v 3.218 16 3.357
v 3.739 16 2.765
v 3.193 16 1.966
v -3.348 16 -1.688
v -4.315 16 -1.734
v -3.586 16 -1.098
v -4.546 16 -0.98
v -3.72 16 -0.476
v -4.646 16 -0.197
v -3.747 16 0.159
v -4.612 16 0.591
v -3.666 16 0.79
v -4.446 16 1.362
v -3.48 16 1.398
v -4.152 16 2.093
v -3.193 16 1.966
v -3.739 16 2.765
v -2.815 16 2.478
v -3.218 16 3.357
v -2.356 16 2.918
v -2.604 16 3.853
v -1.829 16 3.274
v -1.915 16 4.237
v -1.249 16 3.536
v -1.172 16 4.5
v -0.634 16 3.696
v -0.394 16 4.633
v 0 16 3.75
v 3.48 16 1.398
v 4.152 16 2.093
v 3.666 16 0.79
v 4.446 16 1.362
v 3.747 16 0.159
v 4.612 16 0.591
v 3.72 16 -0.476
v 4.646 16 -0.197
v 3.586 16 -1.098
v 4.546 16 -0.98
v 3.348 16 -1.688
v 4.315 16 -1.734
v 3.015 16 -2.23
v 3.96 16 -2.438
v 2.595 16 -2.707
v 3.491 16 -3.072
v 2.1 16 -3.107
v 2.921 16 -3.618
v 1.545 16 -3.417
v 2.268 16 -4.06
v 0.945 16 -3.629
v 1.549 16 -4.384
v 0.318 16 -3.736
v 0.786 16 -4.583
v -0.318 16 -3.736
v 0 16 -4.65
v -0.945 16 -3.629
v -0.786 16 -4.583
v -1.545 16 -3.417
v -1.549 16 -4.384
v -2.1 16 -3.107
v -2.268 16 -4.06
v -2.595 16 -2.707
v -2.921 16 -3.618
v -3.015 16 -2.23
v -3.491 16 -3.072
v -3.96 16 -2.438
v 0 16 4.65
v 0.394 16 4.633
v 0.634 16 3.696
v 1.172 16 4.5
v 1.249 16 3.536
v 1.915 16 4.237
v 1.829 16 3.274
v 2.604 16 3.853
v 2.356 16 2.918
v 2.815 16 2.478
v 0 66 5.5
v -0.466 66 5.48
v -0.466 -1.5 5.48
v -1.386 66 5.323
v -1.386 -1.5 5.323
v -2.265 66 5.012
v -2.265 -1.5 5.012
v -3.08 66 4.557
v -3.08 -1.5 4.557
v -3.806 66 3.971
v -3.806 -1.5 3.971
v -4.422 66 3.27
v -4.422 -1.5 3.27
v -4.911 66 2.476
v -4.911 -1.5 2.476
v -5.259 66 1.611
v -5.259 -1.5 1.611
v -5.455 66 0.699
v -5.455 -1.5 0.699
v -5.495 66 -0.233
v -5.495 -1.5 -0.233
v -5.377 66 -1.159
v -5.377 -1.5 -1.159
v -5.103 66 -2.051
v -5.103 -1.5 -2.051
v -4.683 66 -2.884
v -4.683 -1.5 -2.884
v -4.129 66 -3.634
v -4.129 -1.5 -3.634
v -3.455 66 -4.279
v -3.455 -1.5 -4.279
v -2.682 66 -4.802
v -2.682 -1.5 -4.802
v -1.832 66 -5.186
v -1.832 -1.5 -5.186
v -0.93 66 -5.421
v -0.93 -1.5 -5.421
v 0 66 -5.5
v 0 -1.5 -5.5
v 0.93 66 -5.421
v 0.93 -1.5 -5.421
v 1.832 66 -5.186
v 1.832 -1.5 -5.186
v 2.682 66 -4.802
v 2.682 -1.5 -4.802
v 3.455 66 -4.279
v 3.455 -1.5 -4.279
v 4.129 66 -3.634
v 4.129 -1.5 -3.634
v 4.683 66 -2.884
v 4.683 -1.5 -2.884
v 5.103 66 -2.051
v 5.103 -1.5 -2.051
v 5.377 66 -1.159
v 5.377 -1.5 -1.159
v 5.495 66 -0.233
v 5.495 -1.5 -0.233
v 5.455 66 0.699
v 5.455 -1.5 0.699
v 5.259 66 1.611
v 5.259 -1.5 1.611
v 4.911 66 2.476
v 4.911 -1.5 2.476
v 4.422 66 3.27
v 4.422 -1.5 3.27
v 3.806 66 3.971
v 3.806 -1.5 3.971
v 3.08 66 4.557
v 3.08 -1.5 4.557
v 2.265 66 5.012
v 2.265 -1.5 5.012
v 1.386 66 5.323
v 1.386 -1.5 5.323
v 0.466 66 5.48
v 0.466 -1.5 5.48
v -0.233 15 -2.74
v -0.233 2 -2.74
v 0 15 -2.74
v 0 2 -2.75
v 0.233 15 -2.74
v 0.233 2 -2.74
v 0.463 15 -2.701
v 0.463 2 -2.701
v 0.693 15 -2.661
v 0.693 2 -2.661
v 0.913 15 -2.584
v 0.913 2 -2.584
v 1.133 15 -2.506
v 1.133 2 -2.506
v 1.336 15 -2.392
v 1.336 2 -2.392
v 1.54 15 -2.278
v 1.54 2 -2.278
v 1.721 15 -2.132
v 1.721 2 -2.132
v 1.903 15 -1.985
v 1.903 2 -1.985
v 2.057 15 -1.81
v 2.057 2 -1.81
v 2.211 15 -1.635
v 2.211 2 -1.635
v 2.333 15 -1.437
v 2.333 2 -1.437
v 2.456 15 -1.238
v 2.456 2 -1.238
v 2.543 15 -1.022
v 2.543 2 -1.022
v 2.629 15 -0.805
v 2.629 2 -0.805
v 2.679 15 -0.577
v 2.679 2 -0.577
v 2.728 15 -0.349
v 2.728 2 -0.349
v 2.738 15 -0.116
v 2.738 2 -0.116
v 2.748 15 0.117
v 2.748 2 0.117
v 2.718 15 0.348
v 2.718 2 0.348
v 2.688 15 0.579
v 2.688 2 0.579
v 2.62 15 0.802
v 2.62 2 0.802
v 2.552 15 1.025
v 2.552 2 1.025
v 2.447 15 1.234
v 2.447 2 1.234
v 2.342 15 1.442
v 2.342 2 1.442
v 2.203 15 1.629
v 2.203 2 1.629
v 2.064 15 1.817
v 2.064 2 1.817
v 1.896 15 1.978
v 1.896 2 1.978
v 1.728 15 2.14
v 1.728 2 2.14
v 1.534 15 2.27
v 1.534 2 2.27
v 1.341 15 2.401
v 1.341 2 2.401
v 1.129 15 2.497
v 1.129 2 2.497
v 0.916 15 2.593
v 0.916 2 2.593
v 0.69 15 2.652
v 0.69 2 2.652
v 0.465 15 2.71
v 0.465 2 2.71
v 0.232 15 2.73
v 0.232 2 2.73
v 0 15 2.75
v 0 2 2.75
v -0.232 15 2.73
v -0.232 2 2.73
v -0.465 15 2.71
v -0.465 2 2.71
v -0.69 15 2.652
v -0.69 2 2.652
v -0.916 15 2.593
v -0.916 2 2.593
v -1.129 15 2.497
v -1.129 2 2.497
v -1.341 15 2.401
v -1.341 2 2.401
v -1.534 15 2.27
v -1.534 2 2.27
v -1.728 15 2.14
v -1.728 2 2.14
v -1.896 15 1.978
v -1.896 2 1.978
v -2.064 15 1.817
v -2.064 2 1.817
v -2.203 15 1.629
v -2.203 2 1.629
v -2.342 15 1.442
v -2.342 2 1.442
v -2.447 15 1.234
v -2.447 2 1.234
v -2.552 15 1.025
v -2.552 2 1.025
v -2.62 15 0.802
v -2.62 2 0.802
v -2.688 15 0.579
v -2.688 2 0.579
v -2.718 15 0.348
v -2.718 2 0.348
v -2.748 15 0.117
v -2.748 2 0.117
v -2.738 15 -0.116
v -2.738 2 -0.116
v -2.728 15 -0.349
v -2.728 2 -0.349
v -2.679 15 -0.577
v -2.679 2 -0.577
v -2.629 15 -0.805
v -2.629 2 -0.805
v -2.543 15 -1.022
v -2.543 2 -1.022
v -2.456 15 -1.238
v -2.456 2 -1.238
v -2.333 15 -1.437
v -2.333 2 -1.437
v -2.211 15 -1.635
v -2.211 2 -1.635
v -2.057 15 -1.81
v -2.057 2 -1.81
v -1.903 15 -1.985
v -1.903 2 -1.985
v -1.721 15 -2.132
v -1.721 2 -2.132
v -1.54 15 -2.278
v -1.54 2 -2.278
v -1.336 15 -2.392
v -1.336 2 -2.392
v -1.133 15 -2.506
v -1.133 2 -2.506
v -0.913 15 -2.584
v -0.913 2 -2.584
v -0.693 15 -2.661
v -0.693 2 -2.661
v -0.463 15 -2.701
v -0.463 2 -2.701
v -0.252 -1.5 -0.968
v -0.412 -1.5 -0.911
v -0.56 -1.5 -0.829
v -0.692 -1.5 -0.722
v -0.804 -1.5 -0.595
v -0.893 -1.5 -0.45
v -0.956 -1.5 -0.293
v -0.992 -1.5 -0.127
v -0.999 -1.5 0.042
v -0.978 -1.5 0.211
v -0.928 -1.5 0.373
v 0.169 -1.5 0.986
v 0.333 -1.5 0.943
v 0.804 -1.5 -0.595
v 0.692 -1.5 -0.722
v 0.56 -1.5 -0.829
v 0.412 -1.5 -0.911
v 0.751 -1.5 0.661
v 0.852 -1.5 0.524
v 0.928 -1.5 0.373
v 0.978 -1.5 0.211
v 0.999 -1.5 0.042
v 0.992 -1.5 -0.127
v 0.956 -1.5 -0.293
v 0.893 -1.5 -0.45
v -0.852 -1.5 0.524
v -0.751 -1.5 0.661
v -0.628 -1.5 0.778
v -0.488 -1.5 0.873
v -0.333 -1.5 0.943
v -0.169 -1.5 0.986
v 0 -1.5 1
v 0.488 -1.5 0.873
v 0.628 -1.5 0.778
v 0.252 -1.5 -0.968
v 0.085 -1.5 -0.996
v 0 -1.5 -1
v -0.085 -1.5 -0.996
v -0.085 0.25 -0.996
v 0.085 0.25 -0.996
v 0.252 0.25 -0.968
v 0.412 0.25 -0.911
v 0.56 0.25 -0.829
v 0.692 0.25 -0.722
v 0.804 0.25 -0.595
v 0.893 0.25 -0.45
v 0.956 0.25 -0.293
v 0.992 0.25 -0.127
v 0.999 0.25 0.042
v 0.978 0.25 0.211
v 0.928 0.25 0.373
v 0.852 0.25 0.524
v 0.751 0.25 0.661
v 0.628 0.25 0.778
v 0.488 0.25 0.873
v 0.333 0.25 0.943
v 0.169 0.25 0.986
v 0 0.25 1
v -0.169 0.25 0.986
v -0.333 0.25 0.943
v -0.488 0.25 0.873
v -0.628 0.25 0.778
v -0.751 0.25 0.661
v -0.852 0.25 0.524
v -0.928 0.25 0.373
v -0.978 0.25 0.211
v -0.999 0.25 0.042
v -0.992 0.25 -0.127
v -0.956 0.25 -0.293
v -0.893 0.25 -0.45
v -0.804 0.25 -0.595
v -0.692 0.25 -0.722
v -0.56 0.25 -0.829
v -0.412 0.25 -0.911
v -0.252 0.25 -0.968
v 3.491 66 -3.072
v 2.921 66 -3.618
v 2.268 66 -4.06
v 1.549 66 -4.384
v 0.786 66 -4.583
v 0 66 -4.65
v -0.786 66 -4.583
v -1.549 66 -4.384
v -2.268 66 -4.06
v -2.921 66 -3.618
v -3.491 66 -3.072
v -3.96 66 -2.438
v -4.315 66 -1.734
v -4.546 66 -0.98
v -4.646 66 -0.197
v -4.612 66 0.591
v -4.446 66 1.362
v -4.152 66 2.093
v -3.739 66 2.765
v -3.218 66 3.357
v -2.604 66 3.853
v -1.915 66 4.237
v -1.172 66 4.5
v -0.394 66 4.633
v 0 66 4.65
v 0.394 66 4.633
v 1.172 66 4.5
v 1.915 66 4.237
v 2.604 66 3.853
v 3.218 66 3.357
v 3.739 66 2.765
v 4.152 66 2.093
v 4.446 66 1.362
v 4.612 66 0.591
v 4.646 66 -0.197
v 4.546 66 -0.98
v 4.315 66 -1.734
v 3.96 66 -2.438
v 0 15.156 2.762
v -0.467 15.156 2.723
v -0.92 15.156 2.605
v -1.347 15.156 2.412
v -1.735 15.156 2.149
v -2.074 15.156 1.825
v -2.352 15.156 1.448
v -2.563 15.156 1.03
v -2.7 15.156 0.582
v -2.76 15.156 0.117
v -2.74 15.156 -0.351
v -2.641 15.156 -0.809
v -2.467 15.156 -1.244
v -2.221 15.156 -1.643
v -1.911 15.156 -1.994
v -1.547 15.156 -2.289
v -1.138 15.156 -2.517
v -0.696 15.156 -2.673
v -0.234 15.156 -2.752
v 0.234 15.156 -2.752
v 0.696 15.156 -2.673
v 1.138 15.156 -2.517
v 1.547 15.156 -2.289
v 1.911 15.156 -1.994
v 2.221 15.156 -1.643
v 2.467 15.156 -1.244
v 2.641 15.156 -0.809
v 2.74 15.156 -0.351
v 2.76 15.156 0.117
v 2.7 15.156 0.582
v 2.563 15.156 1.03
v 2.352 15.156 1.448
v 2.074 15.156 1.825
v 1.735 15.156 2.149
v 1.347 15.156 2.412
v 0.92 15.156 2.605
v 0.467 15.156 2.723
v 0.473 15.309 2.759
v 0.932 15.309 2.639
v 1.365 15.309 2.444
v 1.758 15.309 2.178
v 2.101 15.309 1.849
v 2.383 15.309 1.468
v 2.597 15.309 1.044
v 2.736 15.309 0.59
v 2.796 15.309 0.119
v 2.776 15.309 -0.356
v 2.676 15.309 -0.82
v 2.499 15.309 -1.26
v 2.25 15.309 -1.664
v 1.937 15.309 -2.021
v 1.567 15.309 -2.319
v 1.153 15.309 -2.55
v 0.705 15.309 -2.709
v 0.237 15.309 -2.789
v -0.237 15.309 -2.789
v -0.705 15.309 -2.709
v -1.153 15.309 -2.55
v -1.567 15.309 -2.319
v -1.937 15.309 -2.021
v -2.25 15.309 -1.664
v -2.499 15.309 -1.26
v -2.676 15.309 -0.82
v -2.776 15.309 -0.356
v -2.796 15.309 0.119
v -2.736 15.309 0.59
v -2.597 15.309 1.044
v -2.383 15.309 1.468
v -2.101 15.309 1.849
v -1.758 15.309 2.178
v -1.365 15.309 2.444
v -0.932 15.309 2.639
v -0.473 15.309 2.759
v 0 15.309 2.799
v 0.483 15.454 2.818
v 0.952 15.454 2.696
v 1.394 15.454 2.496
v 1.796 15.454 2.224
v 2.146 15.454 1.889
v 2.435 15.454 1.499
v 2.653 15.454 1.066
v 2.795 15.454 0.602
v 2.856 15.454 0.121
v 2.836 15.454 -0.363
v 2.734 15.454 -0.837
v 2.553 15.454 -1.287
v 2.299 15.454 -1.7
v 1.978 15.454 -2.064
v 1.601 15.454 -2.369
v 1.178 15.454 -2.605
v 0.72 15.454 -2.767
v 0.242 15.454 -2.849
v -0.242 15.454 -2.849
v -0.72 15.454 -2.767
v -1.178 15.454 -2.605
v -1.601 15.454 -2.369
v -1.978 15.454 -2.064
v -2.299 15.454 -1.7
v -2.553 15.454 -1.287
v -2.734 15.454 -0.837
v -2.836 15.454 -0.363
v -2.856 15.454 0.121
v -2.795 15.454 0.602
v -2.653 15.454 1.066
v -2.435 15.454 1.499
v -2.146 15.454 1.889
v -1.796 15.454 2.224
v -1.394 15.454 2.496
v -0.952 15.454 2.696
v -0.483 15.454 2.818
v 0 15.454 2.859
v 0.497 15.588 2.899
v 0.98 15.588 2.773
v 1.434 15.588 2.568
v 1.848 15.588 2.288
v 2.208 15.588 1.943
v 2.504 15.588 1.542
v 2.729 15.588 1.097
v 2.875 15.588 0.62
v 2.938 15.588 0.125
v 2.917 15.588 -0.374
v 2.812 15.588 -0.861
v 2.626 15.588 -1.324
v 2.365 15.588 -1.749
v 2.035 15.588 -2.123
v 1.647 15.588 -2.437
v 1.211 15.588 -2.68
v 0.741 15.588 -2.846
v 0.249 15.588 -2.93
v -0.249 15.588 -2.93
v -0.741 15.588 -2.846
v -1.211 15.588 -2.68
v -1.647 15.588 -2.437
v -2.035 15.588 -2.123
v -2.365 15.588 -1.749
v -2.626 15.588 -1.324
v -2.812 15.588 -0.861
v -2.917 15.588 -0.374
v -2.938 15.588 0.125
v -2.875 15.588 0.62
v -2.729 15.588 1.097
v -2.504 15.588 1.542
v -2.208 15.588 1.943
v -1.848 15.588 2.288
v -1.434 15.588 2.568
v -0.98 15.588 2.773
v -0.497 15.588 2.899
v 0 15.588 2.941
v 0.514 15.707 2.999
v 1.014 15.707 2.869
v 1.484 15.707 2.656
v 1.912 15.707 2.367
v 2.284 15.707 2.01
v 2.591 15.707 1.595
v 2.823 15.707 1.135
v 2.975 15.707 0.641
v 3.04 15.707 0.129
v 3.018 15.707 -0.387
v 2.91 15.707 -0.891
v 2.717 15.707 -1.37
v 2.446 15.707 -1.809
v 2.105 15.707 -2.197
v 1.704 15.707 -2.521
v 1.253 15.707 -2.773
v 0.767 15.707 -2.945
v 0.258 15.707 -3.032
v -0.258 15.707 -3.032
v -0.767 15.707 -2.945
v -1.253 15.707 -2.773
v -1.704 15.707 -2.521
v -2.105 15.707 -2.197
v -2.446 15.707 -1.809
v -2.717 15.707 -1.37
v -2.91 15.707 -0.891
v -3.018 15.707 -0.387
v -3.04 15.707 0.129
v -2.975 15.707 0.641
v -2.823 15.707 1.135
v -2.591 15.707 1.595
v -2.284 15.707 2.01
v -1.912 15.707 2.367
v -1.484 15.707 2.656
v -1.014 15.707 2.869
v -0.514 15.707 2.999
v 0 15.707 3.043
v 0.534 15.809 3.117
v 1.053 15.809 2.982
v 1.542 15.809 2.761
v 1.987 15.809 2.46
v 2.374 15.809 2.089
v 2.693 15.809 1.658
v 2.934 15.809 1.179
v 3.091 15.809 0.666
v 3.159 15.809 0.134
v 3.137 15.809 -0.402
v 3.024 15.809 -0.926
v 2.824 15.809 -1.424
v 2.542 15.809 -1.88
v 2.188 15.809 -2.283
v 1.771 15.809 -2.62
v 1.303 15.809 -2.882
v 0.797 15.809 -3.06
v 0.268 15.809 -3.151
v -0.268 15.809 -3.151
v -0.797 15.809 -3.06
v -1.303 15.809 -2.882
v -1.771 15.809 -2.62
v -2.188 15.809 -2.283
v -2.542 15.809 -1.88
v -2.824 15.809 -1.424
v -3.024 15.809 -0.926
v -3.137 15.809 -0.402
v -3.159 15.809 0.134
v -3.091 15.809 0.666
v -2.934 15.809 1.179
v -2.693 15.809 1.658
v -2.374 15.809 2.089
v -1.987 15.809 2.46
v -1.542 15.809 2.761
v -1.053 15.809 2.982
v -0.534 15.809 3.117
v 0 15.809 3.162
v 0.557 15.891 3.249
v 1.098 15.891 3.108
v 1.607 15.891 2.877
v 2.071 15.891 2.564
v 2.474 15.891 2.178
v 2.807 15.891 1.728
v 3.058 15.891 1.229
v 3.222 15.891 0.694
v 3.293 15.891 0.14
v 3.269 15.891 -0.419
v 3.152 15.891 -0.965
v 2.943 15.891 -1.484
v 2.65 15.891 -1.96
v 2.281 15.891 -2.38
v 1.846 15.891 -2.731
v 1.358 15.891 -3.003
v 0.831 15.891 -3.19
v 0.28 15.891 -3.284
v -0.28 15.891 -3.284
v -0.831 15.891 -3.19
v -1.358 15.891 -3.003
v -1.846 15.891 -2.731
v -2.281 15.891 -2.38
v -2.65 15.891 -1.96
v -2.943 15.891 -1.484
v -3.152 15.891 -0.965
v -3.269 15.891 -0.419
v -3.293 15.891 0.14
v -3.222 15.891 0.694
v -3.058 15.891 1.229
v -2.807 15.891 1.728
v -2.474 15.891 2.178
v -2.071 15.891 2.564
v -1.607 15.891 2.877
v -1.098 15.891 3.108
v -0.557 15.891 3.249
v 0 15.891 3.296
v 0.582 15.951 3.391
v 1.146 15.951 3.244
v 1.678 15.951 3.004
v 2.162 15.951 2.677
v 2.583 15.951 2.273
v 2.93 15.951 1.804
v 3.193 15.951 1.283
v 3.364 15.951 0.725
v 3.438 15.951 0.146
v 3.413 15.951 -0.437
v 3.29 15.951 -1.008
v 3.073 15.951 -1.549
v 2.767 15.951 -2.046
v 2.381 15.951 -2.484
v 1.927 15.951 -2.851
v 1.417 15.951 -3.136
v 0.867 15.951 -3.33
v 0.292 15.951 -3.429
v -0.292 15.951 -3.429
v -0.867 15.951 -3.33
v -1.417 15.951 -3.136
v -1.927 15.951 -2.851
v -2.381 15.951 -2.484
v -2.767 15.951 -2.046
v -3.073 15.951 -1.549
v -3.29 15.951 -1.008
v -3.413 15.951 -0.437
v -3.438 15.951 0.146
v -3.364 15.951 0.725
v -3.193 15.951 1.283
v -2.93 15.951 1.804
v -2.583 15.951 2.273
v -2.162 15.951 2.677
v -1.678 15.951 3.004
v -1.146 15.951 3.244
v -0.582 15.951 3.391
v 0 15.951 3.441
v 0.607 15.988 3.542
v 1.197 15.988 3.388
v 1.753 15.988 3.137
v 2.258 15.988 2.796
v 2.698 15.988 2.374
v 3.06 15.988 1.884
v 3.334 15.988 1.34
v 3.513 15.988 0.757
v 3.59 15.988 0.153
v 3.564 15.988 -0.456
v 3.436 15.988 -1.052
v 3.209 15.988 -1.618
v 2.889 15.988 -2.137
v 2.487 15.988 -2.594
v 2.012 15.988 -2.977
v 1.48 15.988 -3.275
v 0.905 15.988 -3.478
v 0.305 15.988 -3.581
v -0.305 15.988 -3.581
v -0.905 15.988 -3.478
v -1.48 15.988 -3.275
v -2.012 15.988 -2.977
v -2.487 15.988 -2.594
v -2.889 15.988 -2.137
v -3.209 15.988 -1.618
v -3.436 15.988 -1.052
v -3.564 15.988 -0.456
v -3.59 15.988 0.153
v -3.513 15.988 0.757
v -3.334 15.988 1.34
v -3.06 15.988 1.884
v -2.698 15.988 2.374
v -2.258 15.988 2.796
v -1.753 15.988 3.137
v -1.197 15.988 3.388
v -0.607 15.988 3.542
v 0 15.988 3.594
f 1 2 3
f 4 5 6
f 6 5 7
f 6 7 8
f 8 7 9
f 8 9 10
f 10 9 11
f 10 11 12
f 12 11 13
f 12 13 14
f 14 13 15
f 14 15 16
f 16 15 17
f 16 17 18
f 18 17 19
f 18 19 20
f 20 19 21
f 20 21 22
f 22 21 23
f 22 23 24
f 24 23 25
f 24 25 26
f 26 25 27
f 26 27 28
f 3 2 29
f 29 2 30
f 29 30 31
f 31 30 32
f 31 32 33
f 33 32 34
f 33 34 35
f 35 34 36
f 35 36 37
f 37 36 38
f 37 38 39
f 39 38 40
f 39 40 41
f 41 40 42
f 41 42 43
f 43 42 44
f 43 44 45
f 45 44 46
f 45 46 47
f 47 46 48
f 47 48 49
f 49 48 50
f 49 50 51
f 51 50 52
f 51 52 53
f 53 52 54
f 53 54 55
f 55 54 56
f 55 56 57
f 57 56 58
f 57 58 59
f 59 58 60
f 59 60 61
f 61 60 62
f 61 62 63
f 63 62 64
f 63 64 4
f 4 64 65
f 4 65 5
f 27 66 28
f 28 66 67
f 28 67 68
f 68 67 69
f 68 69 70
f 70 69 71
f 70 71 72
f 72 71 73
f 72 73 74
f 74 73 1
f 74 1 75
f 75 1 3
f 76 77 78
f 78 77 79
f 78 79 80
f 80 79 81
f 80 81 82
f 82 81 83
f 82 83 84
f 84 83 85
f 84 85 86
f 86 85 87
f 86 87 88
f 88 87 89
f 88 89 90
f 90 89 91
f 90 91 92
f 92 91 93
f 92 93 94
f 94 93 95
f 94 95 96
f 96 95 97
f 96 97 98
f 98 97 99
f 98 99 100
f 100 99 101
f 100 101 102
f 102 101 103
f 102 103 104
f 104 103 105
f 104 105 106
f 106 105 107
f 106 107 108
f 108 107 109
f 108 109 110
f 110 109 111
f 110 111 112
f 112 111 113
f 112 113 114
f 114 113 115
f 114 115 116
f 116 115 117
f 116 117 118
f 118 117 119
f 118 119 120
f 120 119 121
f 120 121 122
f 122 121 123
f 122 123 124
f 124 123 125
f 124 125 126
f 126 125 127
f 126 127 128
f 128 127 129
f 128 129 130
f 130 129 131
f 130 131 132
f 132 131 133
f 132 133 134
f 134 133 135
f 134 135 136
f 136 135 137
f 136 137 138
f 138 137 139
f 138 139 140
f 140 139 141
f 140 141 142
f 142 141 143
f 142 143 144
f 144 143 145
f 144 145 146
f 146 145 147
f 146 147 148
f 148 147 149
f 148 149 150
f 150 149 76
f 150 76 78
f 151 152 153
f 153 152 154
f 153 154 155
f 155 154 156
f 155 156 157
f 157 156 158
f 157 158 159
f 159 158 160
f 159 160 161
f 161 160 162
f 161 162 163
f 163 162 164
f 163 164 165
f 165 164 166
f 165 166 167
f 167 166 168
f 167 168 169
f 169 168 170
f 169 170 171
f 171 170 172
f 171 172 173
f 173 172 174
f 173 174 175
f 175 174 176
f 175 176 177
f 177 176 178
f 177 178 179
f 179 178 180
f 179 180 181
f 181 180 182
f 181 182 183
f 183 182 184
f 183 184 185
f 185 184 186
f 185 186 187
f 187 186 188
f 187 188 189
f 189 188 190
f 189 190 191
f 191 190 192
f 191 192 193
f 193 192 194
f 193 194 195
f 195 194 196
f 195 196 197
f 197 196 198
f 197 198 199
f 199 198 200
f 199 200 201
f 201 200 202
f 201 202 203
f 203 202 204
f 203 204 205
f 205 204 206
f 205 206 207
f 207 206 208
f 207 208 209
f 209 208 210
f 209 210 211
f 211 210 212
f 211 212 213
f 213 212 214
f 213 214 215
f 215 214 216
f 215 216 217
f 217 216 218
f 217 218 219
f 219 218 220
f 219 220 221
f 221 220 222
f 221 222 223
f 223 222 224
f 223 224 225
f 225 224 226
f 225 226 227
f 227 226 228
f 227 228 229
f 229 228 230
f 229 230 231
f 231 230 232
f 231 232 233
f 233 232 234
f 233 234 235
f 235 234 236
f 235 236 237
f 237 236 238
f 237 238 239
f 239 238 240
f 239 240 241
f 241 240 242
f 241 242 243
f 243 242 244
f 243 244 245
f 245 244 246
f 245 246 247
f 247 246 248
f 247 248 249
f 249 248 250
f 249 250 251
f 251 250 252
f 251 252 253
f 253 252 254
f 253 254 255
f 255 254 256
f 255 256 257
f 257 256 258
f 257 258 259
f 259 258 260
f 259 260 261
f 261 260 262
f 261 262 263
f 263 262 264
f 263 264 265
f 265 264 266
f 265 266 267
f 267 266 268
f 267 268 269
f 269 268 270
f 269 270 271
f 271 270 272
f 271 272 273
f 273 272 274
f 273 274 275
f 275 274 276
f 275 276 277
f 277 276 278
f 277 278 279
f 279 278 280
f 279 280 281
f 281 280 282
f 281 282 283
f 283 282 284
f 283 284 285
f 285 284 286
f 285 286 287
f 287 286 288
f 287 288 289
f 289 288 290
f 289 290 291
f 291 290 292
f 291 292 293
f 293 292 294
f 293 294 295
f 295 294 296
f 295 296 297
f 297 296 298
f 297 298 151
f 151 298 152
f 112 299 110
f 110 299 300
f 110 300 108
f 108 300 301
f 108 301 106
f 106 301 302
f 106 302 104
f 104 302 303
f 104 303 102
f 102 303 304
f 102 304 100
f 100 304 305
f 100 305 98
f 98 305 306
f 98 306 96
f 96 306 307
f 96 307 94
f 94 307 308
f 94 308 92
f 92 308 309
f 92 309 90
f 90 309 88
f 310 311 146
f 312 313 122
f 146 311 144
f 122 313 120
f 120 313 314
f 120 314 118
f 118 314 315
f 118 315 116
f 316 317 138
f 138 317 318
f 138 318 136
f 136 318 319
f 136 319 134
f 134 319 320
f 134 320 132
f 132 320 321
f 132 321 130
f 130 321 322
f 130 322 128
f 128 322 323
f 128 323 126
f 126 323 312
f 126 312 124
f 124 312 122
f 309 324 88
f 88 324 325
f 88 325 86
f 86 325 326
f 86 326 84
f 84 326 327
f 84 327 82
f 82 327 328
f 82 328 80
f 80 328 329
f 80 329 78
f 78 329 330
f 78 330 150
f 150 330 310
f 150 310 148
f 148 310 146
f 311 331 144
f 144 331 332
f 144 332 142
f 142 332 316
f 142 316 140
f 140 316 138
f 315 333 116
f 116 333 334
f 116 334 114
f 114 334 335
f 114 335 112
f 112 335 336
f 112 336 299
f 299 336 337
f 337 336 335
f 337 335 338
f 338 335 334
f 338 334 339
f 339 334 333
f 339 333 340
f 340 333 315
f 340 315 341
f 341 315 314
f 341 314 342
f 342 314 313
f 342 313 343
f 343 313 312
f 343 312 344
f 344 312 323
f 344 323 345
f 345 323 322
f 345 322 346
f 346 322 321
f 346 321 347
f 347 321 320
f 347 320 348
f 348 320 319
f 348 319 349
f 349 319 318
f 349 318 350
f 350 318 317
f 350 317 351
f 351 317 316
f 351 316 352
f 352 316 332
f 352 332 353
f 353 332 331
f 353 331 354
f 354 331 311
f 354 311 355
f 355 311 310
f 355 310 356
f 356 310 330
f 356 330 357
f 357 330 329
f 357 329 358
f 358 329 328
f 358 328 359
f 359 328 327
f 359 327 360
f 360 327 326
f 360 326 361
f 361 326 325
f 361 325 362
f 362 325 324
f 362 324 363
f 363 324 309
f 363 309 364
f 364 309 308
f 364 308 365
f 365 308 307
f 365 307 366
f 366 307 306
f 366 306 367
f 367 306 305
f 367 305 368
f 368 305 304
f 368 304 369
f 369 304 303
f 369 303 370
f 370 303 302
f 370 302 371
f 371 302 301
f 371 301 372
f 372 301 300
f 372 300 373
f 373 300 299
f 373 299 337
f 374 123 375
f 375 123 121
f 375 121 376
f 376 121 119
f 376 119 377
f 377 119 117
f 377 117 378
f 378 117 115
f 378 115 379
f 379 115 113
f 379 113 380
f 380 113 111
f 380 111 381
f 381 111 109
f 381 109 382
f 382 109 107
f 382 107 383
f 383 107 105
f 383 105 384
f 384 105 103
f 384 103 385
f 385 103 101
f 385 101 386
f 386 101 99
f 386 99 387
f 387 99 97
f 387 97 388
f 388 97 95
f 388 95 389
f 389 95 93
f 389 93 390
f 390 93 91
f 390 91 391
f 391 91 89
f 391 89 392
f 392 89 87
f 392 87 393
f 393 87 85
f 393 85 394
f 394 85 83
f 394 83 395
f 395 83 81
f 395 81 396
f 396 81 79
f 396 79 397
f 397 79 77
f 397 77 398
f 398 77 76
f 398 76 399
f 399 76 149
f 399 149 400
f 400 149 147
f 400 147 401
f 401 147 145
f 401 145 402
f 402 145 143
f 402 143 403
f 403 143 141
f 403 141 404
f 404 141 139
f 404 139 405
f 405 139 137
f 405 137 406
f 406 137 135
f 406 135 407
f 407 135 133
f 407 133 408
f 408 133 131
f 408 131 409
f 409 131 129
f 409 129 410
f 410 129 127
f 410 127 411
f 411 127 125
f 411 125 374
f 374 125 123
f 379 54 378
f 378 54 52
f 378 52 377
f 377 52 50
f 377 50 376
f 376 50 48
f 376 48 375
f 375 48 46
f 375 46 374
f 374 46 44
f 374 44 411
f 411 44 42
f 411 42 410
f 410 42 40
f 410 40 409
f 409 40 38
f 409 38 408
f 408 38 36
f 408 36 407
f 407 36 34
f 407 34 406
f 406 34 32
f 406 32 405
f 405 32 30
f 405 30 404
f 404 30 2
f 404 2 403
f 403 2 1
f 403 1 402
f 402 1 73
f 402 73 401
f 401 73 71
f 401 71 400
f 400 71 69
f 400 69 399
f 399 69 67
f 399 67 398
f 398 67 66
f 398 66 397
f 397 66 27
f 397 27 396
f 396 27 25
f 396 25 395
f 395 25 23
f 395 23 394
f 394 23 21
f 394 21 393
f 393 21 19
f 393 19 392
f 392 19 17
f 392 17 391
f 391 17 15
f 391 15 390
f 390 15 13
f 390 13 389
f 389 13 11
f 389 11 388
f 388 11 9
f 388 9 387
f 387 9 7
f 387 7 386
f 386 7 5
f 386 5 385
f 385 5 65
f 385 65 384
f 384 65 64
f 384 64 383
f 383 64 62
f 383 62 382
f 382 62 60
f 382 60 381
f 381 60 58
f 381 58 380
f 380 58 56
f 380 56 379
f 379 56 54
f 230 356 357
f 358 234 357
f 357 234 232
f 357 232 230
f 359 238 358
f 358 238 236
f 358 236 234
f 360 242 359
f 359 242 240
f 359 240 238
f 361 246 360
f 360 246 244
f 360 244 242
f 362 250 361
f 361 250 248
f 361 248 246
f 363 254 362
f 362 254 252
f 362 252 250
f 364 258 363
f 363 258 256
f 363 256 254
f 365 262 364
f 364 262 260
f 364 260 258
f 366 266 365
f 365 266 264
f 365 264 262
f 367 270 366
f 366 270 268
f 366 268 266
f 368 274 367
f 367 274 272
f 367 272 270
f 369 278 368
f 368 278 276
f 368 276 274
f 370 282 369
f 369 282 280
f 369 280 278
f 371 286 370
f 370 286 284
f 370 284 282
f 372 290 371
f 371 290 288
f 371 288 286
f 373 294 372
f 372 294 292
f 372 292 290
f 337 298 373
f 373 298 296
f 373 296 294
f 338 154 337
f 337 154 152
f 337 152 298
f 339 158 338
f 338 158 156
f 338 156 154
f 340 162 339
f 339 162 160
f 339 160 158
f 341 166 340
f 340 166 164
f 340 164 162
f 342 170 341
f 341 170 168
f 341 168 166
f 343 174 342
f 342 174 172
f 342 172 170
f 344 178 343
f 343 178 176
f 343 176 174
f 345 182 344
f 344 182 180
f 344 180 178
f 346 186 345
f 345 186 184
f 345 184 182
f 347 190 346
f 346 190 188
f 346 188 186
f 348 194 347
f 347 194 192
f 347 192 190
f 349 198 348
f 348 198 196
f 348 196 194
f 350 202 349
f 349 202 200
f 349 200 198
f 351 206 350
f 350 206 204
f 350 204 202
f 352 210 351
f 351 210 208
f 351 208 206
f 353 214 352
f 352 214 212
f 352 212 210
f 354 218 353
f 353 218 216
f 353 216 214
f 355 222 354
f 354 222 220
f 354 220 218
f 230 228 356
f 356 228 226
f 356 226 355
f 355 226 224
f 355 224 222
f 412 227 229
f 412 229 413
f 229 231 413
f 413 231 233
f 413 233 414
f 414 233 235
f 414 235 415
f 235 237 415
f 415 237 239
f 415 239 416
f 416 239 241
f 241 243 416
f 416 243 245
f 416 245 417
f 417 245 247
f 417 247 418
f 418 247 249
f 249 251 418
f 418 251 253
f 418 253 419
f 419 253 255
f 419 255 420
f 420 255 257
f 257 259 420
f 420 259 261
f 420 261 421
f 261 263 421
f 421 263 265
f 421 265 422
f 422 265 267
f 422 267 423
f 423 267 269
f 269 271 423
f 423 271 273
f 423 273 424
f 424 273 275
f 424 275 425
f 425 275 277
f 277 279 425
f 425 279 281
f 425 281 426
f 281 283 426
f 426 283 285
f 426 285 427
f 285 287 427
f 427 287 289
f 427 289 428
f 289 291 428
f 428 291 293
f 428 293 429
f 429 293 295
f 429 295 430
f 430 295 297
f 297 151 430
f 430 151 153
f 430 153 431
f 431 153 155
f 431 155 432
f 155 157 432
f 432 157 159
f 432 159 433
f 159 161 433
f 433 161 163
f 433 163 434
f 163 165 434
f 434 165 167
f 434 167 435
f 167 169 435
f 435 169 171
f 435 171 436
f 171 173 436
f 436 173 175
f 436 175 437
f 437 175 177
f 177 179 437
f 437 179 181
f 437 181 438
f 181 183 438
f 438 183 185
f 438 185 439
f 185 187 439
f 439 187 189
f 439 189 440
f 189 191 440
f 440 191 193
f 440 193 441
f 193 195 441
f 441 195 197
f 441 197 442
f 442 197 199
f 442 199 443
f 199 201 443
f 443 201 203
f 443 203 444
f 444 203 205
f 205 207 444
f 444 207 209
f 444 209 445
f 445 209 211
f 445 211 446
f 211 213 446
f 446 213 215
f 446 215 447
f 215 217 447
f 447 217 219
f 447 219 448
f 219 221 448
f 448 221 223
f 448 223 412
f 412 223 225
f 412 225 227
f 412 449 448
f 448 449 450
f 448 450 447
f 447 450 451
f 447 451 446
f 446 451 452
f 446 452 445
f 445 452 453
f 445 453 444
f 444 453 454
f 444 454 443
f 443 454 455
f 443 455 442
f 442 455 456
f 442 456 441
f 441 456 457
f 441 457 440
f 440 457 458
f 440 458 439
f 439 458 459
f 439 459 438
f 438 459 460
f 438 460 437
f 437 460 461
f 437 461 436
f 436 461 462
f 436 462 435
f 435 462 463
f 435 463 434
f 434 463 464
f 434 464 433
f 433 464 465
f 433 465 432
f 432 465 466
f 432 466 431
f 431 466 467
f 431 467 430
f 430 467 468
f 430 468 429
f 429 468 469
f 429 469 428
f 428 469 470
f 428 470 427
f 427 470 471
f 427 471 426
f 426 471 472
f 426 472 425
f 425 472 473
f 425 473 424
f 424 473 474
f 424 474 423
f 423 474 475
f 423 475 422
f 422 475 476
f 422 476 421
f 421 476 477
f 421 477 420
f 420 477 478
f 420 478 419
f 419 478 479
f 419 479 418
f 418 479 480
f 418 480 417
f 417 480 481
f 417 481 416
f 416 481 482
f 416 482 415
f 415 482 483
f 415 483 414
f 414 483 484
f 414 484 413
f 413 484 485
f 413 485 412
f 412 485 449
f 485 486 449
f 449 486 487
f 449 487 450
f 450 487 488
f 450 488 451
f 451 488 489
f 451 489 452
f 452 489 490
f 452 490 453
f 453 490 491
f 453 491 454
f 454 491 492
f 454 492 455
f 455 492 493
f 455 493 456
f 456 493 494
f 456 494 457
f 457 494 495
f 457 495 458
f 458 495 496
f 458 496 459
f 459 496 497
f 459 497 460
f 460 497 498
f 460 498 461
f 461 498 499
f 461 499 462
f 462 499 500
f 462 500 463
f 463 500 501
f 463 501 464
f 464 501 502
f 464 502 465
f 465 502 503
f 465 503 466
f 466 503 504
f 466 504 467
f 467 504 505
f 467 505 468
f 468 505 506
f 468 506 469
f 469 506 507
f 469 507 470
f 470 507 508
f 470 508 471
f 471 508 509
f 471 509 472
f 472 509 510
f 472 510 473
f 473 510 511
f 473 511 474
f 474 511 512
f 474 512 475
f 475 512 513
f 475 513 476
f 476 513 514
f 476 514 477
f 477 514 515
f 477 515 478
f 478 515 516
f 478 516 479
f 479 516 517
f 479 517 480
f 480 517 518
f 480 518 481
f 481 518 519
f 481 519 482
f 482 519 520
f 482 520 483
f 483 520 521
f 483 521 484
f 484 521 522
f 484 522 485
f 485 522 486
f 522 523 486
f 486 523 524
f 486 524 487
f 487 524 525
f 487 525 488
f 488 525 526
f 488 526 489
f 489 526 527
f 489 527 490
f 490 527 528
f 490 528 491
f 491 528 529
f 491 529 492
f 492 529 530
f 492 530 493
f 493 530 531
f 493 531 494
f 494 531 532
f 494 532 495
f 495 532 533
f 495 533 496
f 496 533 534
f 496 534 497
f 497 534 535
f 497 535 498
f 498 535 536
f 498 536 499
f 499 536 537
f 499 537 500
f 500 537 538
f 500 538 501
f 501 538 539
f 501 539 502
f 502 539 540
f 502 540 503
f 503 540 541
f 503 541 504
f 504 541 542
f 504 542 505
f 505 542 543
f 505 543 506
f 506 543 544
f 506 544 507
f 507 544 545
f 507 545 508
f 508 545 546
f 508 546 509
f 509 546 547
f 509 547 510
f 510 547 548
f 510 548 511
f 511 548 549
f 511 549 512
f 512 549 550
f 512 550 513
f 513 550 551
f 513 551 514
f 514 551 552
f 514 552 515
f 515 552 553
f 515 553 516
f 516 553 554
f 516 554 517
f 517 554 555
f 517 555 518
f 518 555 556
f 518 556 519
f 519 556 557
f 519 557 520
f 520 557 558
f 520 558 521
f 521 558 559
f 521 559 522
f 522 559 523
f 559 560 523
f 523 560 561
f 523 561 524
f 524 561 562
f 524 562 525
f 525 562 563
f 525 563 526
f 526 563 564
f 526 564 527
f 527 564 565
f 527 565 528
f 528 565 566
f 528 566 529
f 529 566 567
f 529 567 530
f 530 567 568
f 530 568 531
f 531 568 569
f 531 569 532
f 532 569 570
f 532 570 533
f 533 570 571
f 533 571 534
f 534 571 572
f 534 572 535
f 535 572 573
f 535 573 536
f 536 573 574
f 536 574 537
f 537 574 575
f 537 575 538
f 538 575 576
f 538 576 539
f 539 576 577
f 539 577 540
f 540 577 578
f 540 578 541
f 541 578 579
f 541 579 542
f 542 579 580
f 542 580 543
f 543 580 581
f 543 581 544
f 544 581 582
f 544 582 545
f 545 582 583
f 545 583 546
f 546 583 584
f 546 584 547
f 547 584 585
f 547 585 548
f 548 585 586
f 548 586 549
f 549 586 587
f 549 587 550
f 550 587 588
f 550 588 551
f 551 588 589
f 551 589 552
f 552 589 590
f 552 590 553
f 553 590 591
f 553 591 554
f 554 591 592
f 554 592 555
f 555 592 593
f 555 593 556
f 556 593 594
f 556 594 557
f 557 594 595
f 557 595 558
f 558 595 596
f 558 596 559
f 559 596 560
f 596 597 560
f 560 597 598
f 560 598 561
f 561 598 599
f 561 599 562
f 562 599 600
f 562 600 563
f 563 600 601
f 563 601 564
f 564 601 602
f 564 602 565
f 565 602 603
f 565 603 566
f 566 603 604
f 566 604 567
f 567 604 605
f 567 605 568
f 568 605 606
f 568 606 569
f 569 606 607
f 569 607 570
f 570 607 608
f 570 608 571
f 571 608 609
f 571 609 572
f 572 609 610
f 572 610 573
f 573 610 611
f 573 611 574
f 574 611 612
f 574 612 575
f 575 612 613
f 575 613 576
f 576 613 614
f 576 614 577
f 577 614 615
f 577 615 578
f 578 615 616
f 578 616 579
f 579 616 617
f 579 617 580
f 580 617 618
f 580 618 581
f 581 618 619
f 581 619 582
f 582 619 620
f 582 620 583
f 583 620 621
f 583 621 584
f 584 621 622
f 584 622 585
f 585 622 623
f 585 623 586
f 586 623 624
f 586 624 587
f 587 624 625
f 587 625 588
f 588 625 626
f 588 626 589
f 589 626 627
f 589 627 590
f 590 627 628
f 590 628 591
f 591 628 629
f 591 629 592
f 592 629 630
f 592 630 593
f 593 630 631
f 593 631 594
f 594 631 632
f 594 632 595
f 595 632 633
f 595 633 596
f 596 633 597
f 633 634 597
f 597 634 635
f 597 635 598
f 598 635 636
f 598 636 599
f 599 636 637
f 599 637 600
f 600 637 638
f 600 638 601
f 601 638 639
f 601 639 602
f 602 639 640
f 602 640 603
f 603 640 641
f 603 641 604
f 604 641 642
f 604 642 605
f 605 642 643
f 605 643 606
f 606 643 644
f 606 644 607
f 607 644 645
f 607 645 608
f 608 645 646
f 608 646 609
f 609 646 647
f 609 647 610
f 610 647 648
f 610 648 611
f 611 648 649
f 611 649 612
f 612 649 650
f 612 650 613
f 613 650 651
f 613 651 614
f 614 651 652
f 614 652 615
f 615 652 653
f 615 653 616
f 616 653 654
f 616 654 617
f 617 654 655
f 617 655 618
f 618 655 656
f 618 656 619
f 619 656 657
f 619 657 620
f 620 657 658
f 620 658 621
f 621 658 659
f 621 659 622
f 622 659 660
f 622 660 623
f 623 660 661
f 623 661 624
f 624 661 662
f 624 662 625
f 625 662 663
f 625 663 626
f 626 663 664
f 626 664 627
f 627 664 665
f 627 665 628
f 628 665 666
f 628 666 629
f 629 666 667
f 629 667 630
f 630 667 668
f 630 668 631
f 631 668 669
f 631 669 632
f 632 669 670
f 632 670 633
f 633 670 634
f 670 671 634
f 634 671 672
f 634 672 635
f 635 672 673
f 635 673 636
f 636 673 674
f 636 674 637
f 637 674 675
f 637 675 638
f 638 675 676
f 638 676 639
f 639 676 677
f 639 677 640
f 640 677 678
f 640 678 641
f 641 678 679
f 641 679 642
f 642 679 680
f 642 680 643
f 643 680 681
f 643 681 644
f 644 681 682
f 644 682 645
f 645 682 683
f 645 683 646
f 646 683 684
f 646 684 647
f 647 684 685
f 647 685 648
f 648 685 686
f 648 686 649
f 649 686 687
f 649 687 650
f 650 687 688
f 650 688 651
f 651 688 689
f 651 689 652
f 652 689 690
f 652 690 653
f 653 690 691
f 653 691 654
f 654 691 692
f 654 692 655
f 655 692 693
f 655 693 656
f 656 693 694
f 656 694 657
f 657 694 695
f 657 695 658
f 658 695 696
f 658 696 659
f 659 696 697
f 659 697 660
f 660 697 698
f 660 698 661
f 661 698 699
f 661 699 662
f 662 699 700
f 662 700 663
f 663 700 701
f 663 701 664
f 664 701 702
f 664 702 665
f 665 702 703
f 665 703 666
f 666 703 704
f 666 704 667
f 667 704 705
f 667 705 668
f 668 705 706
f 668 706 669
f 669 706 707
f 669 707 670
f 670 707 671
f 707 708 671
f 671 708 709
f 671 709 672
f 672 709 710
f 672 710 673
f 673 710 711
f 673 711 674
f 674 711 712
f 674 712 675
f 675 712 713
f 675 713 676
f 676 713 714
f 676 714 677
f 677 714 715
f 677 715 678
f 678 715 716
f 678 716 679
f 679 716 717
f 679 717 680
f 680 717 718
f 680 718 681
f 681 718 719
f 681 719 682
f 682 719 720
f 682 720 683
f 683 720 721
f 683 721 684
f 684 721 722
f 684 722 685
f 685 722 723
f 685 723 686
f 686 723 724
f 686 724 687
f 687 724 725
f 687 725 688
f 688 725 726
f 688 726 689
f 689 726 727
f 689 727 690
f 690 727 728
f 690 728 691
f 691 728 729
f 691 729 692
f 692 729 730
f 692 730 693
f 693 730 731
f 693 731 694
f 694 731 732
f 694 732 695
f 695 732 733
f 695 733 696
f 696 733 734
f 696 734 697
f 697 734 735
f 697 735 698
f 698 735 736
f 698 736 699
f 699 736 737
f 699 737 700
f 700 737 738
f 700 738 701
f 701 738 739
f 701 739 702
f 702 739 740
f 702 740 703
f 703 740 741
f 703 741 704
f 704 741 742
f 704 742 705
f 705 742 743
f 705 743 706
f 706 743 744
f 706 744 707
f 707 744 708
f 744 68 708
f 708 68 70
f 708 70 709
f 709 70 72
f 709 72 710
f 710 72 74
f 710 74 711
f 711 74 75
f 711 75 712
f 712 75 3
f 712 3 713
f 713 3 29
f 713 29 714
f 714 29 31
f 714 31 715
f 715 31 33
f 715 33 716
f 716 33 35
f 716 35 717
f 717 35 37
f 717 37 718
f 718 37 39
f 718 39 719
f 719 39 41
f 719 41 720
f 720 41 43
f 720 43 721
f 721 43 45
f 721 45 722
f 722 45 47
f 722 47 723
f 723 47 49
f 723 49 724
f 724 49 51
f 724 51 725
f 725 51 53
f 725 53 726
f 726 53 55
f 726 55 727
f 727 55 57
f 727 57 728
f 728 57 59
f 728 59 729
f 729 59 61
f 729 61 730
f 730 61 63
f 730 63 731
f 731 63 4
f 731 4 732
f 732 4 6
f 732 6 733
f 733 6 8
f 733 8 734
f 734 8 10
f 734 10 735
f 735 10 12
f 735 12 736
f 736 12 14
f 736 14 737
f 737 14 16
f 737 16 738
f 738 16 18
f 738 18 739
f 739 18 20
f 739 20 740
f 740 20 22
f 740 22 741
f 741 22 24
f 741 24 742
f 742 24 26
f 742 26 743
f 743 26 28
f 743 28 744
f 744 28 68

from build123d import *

# Parameters (mm, degrees)
SKETCH1_R           = 5.5
SKETCH1_R_2         = 2.75
BOSS_EXTRUDE1_DEPTH = 16
BOSS_EXTRUDE2_START = 1.5
SKETCH2_R           = 5.5
SKETCH2_R_2         = 1
BOSS_EXTRUDE2_DEPTH = 1.5
SKETCH3_R           = 5.5
SKETCH3_R_2         = 4.65
BOSS_EXTRUDE3_DEPTH = 50
CHAMFER1_SIZE       = 2
FILLET1_R           = 1


with BuildPart() as part:
    # Sketch1 → Boss-Extrude1 (new body)
    with BuildSketch(Plane(origin=(0, 0, 0), x_dir=(1, 0, 0), z_dir=(0, 1, 0))):
        with Locations(Location((0, 0, 0), (0, 0, 270))):
            Circle(SKETCH1_R)
        with Locations(Location((0, 0, 0), (0, 0, 270))):
            Circle(SKETCH1_R_2, mode=Mode.SUBTRACT)
    extrude(amount=BOSS_EXTRUDE1_DEPTH)

    # Sketch2 → Boss-Extrude2 (add)
    with BuildSketch(Plane.XZ.offset(BOSS_EXTRUDE2_START)):
        with Locations(Location((0, 0, 0), (0, 0, 270))):
            Circle(SKETCH2_R)
        with Locations(Location((0, 0, 0), (0, 0, 270))):
            Circle(SKETCH2_R_2, mode=Mode.SUBTRACT)
    extrude(amount=-BOSS_EXTRUDE2_DEPTH)

    # Sketch3 → Boss-Extrude3 (add)
    with BuildSketch(Plane(origin=(0, 16, 0), x_dir=(1, 0, 0), z_dir=(0, 1, 0))):
        with Locations(Location((0, 0, 0), (0, 0, 90))):
            Circle(SKETCH3_R)
        with Locations(Location((0, 0, 0), (0, 0, 270))):
            Circle(SKETCH3_R_2, mode=Mode.SUBTRACT)
    extrude(amount=BOSS_EXTRUDE3_DEPTH)

    # Chamfer1
    # the kernel refuses this chamfer: 2 mm, written as the material it adds along each edge
    with BuildSketch(Plane(origin=(0, 0, 0), x_dir=(0, 0, 1), z_dir=(-1, 0, 0))) as chamfer1_piece_1_section:
        Polygon((2.75 - CHAMFER1_SIZE, 0), (2.75, CHAMFER1_SIZE), (2.75, 0), align=None)
    chamfer1_piece_1 = revolve(axis=Axis((0, 0, 0), (0, 1, 0)), mode=Mode.PRIVATE)
    chamfer1_piece_1 = chamfer1_piece_1 - Plane(origin=(0, 1.131660662, 0), x_dir=(0, 0, -1), z_dir=(0, -1, 0)) * Cylinder(1, 11, mode=Mode.PRIVATE)
    add(chamfer1_piece_1)

    # Fillet1
    fillet1_edges = [part.edges().sort_by_distance(p)[0] for p in [
        (0, 16, -2.75),
    ]]
    fillet(fillet1_edges, radius=FILLET1_R)


solid = part.part
